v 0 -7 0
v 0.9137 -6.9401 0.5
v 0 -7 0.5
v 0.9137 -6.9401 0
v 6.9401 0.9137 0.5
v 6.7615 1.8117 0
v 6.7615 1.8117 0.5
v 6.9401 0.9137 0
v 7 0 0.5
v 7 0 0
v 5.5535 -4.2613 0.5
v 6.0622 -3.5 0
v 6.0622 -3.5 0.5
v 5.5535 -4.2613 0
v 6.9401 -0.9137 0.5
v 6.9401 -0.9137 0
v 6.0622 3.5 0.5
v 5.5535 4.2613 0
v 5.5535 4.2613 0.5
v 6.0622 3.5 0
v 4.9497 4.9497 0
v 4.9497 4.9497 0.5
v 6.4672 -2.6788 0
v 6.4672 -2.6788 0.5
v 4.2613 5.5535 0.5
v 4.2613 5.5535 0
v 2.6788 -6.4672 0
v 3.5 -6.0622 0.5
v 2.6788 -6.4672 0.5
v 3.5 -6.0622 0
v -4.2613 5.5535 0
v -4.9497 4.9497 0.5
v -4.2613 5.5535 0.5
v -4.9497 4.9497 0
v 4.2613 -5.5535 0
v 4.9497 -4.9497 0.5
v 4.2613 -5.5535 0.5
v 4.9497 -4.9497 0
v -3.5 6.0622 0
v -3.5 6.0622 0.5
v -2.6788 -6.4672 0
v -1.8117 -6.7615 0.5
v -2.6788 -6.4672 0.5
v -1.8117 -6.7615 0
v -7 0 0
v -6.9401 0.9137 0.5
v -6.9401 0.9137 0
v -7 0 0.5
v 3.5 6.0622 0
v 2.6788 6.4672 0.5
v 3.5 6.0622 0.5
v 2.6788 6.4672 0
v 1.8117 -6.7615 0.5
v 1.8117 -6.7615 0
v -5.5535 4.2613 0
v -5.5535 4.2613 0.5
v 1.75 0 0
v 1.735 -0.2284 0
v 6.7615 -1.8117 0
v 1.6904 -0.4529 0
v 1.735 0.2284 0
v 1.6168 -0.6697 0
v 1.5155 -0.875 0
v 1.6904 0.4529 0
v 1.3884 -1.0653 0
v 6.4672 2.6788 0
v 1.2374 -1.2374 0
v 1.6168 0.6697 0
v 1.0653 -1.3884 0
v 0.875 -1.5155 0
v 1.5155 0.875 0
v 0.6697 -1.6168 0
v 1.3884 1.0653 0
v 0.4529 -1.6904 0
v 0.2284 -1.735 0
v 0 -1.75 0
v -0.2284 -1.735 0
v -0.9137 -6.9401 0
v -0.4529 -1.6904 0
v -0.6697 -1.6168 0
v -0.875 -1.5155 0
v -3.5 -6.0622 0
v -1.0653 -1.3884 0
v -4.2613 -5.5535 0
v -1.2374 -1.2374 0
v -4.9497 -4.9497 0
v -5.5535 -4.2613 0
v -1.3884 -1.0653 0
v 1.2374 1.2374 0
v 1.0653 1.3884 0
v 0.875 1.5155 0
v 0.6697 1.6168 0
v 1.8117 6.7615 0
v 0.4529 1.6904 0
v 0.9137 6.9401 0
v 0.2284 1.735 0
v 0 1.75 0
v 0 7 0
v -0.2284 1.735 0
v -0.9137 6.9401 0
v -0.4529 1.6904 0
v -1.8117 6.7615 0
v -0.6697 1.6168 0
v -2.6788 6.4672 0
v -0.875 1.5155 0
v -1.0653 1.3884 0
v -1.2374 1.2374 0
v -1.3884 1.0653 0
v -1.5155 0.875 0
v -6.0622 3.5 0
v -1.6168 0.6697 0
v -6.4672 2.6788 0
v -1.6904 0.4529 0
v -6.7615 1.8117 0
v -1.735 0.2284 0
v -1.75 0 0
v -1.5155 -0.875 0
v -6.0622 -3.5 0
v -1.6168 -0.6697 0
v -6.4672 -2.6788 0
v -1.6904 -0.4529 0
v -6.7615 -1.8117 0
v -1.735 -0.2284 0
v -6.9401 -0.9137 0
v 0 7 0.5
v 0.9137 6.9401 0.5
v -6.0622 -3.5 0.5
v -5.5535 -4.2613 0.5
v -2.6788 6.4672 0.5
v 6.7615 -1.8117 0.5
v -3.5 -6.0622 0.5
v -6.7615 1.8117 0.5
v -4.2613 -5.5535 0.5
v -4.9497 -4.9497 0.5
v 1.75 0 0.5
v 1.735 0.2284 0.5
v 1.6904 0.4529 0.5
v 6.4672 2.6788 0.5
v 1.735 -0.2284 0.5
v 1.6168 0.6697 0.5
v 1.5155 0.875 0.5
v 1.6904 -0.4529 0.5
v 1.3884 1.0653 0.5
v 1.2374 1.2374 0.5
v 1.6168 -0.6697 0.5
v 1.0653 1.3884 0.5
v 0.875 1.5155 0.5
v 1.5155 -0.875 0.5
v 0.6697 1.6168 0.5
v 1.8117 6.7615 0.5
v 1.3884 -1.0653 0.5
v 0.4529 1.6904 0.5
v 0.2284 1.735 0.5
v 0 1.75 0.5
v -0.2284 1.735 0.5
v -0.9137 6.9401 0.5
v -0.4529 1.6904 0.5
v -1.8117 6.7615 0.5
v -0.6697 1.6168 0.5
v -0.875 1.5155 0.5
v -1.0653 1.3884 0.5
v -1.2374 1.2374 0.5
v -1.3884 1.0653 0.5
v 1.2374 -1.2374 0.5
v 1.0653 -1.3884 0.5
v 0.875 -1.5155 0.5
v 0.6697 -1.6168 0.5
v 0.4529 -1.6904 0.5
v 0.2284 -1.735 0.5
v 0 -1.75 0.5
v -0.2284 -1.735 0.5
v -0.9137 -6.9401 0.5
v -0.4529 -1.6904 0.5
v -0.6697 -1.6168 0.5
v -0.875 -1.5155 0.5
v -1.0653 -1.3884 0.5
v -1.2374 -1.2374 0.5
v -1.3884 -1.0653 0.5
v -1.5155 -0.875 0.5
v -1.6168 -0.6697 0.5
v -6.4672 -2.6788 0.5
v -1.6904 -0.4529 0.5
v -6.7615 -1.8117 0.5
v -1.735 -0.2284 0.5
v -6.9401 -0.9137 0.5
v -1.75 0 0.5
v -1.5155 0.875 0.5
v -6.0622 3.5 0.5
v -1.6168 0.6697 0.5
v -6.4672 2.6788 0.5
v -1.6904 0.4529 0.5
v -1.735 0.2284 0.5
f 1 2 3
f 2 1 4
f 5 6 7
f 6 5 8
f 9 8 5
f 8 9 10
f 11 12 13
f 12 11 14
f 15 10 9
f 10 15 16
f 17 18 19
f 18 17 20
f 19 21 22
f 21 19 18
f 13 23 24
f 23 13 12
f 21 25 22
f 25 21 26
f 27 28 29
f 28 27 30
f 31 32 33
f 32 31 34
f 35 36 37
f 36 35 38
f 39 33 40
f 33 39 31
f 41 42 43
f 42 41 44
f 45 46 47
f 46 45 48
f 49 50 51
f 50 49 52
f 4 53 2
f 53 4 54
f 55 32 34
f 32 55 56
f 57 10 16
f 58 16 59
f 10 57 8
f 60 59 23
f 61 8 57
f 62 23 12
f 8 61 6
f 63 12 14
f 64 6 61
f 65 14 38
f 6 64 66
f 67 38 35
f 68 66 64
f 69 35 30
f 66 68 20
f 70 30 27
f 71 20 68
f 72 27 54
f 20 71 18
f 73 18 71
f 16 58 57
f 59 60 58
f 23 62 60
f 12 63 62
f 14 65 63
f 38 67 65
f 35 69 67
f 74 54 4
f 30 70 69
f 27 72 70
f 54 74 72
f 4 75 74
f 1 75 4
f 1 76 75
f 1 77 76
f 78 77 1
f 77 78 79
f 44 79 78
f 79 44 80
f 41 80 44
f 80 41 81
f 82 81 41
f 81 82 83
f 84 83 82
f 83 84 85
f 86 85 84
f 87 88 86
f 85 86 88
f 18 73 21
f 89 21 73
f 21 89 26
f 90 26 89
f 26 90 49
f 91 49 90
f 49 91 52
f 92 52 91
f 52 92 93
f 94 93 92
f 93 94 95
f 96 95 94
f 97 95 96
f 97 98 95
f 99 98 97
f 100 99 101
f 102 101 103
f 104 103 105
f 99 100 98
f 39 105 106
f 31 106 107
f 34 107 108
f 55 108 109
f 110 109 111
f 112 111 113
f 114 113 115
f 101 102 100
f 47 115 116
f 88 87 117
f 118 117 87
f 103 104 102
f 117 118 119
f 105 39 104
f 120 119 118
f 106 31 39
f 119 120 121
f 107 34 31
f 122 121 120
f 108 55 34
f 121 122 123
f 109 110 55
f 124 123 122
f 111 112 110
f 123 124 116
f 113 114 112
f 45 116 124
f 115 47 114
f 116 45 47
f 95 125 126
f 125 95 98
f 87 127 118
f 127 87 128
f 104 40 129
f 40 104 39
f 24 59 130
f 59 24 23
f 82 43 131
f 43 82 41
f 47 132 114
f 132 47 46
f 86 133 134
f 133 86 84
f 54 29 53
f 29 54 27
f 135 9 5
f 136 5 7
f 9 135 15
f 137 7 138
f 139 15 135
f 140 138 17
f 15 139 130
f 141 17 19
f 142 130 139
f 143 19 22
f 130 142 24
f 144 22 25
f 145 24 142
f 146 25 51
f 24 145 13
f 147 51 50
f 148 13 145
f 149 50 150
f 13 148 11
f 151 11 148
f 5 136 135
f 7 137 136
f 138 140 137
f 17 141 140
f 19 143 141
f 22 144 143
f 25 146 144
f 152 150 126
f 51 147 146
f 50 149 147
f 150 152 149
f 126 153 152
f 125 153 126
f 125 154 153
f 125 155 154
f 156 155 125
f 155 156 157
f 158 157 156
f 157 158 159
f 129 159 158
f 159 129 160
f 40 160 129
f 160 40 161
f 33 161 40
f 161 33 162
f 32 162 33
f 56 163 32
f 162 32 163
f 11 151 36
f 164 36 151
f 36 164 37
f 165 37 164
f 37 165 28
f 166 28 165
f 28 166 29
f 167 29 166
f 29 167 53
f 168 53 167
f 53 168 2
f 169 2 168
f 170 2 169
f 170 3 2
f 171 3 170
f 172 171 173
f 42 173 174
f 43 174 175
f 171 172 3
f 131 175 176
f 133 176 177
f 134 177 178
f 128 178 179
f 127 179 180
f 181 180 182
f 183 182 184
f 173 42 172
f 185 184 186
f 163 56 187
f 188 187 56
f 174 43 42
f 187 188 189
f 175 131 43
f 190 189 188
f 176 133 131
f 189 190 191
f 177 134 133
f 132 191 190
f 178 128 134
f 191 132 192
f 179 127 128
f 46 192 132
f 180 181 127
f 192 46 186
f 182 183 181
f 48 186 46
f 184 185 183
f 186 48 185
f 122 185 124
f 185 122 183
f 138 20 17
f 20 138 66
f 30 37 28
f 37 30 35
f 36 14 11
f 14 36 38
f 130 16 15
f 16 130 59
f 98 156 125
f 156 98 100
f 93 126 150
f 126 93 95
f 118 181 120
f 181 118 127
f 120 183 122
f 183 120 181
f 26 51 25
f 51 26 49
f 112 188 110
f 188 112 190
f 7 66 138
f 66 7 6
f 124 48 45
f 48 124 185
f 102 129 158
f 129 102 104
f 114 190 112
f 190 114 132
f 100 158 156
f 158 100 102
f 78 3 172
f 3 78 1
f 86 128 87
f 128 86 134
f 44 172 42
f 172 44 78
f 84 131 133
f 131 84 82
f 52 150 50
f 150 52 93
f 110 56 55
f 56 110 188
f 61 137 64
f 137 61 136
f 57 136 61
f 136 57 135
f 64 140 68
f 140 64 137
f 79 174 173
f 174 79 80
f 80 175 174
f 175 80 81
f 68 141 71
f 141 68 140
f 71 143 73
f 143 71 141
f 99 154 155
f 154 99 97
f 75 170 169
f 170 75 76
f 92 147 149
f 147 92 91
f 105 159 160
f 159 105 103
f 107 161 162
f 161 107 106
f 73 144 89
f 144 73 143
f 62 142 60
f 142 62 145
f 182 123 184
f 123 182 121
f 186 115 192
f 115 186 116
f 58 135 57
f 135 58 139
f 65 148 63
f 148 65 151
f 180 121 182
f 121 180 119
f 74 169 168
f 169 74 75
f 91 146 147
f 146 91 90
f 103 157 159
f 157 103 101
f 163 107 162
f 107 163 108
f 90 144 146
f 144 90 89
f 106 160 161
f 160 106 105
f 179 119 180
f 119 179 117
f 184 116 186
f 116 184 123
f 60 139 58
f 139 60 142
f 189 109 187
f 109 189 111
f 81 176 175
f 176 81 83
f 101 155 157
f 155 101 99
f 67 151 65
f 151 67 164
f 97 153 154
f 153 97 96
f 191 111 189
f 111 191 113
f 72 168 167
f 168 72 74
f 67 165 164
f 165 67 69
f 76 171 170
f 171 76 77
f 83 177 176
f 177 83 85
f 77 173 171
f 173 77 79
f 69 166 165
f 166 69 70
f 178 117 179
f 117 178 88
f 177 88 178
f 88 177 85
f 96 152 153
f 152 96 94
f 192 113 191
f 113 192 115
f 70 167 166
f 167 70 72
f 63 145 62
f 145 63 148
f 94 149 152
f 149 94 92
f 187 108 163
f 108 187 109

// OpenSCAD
// Gen-CK — assembly gap shim, h = run_clear (rotor face -> flange); copper is inside the flanges
include <parameters.scad>;
$fn = 48;
difference() {
    cylinder(d=spacer_pad_od, h=gap_spacer_h);
    translate([0, 0, -0.1]) cylinder(d=spacer_pad_id, h=gap_spacer_h + 0.2);
}
